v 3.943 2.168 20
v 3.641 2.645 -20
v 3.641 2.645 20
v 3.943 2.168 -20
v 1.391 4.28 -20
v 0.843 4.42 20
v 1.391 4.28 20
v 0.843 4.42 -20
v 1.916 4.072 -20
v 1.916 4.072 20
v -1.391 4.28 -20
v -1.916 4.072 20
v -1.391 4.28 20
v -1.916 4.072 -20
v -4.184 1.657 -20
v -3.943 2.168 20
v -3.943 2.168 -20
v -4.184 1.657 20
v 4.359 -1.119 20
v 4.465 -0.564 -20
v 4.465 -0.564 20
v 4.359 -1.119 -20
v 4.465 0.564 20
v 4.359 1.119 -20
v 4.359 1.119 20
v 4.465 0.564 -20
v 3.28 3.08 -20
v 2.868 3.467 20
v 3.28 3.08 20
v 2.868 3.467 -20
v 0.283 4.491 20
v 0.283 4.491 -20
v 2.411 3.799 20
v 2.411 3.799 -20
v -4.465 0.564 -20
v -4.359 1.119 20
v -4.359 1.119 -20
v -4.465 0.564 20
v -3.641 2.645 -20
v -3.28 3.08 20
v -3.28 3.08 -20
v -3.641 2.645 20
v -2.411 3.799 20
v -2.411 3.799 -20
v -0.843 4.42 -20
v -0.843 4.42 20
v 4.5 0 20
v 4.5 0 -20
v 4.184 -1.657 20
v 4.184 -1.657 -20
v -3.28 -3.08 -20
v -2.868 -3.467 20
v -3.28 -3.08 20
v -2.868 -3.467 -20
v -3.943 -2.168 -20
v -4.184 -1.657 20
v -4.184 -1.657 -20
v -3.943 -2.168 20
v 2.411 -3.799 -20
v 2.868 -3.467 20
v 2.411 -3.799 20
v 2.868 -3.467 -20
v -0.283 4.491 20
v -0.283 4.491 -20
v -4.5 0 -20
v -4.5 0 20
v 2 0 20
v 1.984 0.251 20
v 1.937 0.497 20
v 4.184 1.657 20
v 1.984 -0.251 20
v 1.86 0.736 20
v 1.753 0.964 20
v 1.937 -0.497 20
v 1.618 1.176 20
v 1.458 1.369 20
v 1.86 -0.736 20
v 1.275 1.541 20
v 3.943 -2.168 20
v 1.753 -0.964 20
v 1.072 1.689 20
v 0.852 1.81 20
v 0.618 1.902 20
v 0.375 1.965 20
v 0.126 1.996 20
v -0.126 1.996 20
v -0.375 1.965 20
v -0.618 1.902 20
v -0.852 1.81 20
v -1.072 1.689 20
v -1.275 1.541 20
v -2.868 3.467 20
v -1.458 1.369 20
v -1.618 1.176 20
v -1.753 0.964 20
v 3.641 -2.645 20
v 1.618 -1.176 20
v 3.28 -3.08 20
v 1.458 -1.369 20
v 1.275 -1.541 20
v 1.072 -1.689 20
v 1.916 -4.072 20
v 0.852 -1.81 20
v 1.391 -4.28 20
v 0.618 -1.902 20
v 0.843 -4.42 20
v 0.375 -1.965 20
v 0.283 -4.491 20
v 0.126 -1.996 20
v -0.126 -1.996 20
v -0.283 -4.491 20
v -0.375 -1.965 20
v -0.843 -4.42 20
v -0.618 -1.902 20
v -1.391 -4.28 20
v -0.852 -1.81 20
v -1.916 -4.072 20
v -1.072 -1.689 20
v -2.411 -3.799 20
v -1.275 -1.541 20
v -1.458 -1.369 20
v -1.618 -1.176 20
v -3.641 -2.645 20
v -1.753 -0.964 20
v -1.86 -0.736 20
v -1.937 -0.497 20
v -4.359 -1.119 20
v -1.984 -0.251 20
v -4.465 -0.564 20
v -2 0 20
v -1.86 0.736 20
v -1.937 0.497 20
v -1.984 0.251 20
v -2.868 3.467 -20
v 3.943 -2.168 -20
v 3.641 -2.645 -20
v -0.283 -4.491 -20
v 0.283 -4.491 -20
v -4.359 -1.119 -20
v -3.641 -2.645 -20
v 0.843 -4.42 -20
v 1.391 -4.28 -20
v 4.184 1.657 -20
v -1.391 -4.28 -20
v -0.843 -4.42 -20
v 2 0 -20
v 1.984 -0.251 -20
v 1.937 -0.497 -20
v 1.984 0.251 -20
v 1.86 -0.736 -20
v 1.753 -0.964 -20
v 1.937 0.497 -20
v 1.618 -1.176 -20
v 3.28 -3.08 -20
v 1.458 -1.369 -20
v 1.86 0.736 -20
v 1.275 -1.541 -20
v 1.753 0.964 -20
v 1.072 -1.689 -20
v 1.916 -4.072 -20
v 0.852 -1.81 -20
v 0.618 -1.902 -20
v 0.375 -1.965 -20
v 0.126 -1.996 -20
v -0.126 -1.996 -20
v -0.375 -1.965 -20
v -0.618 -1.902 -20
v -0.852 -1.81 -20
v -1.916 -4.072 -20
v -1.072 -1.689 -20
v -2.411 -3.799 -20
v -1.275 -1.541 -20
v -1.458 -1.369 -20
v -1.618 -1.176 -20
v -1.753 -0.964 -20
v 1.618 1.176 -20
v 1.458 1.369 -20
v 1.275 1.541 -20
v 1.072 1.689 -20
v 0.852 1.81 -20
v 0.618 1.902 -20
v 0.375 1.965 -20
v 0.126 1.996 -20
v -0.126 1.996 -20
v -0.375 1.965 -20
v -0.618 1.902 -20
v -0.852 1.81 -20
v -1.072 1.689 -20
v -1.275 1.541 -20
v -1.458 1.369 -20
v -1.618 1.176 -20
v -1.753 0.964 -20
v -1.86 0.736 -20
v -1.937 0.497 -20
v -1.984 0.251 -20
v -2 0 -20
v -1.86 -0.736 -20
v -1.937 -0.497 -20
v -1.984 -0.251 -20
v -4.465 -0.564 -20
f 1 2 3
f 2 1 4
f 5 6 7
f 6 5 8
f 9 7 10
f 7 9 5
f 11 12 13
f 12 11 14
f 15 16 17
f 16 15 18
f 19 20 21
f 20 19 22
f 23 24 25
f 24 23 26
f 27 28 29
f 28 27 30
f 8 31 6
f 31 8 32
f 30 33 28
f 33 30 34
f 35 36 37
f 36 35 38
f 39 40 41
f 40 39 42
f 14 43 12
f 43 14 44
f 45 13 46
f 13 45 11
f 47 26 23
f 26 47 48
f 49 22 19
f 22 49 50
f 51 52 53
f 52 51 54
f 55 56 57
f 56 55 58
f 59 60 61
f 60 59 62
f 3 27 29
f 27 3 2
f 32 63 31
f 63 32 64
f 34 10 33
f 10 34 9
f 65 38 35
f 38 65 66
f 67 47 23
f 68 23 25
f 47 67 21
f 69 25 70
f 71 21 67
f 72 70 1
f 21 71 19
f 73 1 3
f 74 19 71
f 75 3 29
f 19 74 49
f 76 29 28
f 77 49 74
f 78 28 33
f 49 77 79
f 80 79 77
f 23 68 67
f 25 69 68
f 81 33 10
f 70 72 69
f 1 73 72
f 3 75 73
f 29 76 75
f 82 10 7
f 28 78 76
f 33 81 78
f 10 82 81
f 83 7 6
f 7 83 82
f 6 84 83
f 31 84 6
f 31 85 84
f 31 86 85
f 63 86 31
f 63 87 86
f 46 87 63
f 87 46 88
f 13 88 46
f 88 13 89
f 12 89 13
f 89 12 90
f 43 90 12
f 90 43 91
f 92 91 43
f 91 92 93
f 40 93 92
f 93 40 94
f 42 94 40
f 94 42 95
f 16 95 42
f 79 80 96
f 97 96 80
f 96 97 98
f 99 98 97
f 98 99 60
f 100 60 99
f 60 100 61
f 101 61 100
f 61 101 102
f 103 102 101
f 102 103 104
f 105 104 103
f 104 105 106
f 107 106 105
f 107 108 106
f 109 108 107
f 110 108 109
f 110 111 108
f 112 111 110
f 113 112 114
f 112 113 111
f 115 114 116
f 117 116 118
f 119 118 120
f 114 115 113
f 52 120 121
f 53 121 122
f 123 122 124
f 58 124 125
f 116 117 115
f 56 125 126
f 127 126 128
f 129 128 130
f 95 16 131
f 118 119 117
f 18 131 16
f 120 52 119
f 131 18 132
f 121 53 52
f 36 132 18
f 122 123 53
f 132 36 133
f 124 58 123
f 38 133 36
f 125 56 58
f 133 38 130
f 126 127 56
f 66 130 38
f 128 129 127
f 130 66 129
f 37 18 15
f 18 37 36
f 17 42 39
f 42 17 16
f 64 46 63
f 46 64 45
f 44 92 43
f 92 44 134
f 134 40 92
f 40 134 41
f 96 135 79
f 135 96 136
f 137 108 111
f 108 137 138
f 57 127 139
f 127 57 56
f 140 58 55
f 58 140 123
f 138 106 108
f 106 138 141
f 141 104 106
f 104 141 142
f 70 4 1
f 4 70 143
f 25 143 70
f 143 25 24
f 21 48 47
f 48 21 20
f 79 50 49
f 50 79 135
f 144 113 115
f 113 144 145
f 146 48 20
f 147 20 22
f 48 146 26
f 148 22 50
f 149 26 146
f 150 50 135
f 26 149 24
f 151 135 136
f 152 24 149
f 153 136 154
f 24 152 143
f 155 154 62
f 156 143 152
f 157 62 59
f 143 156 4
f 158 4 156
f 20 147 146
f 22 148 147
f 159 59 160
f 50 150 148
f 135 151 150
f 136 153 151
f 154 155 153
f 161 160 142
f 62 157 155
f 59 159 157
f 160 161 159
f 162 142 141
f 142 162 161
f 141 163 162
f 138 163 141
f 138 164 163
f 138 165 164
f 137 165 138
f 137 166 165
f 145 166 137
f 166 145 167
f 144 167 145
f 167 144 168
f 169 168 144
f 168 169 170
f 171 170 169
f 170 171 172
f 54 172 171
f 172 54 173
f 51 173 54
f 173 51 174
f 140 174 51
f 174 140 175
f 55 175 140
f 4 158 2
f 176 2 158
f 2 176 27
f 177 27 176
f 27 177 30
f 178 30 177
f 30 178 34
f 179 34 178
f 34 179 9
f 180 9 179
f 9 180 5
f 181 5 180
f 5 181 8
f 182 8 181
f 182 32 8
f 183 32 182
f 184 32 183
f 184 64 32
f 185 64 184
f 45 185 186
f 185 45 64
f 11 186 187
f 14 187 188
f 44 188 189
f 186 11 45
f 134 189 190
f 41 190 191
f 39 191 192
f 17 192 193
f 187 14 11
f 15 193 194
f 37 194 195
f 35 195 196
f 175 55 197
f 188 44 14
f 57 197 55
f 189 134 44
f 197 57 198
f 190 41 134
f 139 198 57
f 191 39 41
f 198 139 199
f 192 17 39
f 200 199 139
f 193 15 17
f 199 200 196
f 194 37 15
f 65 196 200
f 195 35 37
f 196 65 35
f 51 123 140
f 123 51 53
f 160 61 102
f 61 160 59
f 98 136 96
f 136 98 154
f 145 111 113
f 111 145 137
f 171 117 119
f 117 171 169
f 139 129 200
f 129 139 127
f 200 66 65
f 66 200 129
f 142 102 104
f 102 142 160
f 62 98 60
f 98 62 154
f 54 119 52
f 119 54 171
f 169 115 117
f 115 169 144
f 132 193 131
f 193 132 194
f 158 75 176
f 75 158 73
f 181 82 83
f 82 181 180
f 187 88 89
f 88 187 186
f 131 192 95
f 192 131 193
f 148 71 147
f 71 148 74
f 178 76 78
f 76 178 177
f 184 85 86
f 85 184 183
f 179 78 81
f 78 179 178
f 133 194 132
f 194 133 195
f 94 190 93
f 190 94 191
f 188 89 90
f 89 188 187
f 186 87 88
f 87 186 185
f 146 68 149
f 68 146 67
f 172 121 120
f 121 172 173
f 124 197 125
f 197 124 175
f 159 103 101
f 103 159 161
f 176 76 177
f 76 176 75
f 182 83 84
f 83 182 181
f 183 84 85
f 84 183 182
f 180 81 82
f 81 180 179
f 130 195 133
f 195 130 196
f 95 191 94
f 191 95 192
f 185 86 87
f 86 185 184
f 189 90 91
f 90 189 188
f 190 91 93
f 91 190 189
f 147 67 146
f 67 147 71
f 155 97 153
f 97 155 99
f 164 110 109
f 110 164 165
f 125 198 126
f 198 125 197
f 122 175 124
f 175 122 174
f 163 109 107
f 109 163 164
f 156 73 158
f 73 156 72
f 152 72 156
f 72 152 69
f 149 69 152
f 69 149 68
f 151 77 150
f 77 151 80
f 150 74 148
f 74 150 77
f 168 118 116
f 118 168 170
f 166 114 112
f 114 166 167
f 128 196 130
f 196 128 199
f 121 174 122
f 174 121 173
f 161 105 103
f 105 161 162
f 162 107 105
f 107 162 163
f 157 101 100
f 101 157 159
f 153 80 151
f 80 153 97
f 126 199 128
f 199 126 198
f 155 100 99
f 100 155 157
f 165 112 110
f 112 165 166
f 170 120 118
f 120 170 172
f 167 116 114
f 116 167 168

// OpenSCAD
$fn = 50;


difference() {
	union() {
		translate(v = [0, 0, -20.0000000000]) {
			cylinder(h = 40, r = 4.5000000000);
		}
	}
	union() {
		translate(v = [0, 0, -100.0000000000]) {
			cylinder(h = 200, r = 2);
		}
	}
}
